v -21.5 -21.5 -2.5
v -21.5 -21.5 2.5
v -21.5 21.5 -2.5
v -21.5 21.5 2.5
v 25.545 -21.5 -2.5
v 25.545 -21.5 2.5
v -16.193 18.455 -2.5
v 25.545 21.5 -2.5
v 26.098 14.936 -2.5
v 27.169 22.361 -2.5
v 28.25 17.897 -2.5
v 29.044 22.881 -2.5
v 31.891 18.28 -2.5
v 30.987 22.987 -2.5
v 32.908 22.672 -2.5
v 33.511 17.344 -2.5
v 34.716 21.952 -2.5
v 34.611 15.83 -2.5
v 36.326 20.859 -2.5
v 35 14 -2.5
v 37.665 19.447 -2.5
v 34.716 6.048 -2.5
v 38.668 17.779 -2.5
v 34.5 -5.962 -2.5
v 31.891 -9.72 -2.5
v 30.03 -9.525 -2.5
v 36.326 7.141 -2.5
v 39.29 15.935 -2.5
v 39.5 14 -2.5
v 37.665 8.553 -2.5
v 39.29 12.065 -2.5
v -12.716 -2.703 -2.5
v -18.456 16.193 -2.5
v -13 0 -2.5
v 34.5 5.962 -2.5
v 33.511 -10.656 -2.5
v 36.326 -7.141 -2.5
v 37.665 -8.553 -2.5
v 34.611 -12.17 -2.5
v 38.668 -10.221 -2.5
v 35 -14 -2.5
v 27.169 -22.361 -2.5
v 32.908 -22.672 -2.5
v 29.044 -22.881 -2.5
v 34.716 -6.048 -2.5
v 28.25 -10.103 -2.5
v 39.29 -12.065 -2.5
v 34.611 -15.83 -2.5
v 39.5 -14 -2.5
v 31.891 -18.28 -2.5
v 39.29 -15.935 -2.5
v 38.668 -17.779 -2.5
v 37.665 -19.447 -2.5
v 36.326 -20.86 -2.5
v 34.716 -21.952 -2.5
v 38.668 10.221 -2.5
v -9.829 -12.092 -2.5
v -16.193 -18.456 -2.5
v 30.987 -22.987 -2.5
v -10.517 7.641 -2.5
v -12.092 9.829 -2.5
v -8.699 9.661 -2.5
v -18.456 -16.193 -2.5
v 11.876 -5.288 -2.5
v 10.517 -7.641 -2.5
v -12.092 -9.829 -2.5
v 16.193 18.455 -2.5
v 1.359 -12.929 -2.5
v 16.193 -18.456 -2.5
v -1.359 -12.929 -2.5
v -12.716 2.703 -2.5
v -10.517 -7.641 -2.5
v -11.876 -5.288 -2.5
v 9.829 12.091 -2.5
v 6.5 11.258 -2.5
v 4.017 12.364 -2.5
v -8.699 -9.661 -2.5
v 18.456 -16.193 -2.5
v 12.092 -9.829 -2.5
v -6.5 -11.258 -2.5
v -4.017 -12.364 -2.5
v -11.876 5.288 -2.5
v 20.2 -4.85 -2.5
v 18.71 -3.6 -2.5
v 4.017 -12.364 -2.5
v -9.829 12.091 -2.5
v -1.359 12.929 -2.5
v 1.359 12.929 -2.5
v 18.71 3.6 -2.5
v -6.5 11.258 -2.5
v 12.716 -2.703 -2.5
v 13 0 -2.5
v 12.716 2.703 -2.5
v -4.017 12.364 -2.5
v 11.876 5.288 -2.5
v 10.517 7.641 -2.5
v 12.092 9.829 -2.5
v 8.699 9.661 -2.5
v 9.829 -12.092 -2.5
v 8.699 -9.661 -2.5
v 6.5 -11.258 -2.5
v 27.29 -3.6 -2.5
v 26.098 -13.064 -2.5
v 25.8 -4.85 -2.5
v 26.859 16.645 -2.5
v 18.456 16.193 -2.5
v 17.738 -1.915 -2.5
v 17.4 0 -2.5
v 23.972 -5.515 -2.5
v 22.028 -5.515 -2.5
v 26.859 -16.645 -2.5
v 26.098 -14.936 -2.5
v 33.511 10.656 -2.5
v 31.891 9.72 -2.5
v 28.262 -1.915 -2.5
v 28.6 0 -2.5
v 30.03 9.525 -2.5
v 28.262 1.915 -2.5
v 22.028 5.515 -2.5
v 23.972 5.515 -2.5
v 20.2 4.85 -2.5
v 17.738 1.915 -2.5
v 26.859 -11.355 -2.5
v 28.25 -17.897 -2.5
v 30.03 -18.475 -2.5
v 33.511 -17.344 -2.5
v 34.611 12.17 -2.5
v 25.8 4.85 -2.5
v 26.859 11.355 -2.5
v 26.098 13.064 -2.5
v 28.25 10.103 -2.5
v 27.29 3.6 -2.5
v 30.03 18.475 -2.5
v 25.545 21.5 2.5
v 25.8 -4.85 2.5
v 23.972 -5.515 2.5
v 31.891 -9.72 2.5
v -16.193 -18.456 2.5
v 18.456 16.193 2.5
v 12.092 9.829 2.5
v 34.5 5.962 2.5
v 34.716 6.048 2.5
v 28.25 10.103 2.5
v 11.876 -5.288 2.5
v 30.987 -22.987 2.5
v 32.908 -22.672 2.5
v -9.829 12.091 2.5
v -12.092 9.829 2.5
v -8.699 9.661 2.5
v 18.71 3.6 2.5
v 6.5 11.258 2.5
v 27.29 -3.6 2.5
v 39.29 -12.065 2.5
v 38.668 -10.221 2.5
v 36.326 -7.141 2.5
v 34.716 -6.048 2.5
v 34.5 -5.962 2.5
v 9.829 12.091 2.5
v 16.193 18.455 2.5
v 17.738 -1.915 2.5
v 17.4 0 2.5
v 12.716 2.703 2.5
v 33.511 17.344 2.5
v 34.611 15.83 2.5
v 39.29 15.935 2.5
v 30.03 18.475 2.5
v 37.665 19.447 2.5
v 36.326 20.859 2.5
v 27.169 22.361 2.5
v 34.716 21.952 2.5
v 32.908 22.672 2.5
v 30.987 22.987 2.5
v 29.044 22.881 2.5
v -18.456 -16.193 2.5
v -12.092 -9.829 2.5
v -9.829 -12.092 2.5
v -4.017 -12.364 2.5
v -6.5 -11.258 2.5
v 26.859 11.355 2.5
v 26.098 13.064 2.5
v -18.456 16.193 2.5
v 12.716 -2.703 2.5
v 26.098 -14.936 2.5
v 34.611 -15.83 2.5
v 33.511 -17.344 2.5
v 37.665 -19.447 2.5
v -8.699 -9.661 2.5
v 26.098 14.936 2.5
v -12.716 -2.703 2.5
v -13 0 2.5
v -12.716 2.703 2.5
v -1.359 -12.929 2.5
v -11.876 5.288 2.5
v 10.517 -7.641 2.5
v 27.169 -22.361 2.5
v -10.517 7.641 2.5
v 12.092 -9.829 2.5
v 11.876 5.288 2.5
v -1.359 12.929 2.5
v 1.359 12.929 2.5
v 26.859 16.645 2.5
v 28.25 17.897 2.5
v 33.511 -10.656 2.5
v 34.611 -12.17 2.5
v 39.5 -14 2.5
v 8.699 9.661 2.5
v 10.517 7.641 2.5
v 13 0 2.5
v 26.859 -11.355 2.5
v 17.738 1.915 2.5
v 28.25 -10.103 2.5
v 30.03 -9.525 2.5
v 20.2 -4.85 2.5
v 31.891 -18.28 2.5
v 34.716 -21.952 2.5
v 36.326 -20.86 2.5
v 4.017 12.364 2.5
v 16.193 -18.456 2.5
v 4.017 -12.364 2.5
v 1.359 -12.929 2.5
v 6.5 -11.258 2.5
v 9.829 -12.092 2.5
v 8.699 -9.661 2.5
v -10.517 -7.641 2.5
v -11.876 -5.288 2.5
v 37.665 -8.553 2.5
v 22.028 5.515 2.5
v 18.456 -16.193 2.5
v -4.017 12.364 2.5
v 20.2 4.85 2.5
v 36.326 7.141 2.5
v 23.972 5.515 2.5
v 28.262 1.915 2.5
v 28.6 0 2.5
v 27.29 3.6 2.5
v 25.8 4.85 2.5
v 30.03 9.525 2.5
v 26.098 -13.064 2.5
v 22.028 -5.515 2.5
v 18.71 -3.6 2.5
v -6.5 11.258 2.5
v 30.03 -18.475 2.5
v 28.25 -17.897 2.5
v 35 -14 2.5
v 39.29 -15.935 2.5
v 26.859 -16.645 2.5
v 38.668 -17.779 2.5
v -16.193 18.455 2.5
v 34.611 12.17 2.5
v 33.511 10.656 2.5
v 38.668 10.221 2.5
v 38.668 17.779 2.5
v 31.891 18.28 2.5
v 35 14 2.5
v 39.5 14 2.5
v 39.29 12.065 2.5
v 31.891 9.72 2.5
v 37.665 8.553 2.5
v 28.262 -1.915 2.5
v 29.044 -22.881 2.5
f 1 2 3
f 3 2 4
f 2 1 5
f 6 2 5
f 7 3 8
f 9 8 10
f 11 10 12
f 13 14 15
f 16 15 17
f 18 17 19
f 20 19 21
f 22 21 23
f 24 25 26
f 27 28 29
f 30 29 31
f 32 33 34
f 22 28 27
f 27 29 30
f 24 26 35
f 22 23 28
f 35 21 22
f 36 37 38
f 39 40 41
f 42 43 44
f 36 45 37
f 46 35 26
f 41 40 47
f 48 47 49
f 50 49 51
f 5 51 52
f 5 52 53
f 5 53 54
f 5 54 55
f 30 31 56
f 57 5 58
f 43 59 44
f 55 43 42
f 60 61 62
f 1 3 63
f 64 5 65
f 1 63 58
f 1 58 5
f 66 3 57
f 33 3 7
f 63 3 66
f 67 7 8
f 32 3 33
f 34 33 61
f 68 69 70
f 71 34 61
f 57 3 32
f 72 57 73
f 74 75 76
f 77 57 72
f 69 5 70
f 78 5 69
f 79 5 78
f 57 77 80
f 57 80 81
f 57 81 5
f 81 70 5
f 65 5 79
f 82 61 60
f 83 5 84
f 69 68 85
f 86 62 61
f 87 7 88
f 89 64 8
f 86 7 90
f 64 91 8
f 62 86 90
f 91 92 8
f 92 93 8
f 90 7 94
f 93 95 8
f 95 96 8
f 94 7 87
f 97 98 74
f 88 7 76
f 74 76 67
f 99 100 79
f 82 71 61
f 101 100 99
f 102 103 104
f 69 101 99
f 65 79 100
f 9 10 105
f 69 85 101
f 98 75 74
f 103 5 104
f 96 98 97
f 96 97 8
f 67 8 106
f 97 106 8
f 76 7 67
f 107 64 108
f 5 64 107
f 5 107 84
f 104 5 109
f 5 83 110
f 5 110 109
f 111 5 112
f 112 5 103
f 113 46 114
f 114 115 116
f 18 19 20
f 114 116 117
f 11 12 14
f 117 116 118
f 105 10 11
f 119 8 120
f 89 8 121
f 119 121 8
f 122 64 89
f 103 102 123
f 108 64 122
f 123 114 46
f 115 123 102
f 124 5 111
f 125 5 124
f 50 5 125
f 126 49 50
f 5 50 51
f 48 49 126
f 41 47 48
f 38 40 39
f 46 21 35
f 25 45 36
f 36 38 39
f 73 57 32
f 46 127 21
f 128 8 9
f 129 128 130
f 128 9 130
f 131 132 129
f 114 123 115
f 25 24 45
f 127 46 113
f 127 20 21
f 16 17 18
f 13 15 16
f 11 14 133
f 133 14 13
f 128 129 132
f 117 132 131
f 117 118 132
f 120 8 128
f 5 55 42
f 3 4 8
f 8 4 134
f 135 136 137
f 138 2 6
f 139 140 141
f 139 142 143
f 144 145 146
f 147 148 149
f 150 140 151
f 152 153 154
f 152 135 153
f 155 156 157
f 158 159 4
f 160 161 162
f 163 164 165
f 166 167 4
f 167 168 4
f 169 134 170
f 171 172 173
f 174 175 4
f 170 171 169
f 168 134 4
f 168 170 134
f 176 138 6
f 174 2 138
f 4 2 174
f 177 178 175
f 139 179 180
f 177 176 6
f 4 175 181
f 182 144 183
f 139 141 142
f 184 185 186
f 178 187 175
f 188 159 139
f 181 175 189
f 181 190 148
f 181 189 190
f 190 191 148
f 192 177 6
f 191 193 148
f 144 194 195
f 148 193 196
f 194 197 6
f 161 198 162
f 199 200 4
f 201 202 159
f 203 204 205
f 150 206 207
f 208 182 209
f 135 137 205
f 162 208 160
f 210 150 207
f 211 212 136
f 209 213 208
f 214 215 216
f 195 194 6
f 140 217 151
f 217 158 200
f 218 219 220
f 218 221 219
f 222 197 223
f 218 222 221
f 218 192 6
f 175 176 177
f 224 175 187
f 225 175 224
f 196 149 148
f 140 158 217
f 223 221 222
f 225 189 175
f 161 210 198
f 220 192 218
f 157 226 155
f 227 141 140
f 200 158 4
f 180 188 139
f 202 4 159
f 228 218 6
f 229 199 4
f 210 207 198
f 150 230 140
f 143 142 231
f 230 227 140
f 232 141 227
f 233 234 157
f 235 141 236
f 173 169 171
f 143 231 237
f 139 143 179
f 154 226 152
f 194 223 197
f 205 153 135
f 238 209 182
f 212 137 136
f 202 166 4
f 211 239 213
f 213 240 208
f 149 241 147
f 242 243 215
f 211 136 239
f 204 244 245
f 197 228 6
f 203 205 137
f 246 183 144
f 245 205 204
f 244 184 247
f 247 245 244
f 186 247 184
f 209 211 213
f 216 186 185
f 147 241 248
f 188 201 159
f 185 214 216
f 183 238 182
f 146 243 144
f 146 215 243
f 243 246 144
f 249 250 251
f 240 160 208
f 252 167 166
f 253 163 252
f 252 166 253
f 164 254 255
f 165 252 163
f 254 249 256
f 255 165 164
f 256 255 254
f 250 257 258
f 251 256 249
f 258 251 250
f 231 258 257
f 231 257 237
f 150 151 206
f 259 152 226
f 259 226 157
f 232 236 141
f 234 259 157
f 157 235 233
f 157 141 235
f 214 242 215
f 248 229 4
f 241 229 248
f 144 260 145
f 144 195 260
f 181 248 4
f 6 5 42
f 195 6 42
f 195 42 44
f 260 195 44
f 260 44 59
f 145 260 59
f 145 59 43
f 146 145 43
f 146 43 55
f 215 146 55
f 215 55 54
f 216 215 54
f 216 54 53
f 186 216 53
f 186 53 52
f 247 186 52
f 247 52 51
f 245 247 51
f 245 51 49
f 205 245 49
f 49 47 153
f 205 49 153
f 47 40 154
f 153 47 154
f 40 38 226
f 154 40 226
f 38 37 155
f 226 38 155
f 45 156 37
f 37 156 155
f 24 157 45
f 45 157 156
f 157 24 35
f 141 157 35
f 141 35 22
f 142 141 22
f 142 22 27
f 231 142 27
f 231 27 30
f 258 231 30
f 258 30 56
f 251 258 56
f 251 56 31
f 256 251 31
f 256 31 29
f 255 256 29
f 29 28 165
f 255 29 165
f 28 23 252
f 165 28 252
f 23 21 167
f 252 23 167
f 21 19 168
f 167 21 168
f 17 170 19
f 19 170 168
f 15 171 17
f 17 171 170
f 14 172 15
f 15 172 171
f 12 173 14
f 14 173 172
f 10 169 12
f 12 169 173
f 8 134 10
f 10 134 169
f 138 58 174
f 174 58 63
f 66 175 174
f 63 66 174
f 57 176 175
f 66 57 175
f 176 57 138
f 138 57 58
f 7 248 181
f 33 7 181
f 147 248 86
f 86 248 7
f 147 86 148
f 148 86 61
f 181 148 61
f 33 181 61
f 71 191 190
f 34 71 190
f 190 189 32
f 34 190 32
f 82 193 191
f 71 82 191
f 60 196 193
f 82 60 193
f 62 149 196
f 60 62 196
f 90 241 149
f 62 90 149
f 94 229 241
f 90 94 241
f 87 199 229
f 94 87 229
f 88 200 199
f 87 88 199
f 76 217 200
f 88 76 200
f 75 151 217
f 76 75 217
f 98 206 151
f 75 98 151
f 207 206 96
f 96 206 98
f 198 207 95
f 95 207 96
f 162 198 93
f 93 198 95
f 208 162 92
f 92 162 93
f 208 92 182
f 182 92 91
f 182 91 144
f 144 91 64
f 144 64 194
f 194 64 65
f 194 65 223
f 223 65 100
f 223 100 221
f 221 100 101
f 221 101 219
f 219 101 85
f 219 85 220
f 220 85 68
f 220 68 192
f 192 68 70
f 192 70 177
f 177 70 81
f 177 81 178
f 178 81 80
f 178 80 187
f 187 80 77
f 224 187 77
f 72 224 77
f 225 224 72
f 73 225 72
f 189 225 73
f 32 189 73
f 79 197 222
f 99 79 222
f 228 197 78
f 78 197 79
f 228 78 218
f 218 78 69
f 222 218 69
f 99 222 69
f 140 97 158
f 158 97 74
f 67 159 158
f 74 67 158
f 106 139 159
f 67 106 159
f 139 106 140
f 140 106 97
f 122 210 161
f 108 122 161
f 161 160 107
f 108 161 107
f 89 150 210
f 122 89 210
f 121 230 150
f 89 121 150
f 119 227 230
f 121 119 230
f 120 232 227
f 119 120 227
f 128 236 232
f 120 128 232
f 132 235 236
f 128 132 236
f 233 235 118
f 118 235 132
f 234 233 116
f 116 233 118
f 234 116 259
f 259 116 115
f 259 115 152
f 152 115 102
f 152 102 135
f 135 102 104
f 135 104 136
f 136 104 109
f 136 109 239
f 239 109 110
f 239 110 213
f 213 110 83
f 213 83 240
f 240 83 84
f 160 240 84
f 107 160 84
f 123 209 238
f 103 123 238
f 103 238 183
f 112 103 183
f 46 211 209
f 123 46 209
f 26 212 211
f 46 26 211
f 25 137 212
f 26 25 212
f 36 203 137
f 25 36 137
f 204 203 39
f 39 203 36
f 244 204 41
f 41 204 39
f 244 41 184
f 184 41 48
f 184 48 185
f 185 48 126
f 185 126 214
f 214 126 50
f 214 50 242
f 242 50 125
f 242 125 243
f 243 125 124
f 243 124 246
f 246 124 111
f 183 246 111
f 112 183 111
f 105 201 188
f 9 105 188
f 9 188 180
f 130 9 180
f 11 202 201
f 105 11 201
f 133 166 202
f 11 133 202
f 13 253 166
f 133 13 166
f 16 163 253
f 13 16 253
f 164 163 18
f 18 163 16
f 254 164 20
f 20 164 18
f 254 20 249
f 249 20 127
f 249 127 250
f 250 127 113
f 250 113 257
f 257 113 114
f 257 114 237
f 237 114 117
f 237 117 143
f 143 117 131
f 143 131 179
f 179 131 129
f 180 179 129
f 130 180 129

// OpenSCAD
// file: configuration.scad
// This is part of miPrint package
// GNU GPL version 3

print = 200;
wall = 5;
rod = 8;
minirod = 3;
motorw = 43;
motorh = 47;
inf = 500;
rail = 10; // outside
// main file
// This is part of miPrint package
// GNU GPL version 3

include <configuration.scad>

cubew=wall+motorw+rod;

difference() {
  union() {
    translate([wall/2+rod/2,0,0]) cube([cubew,motorw,wall],center=true);
    translate([cubew/2+wall/2,motorw/2-wall*1.5,0]) cylinder(r=rod/2+wall,h=wall,center=true);
    translate([cubew/2+wall/2,-(motorw/2-wall*1.5),0]) cylinder(r=rod/2+wall,h=wall,center=true);
  }
  translate([cubew/2+wall/2,motorw/2-wall*1.5,0]) cylinder(r=rod/2+0.5,h=inf,center=true);
  translate([cubew/2+wall/2,-(motorw/2-wall*1.5),0]) cylinder(r=rod/2+0.5,h=inf,center=true);
  // this part is copied form Prusa Mendel
  rotate ([0,0,45]) translate([20,0,0]) cube(size = [9,3.2,25], center = true);
  rotate ([0,0,-45]) translate([20,0,0]) cube(size = [9,3.2,25], center = true);
  rotate ([0,0,135]) translate([20,0,0]) cube(size = [9,3.2,25], center = true);
  rotate ([0,0,-135]) translate([20,0,0]) cube(size = [9,3.2,25], center = true);
  cylinder(r=13,h=25, center = true);
  // savng material
  translate([cubew/2-wall,0,0]) cylinder(r=rod*0.7,h=inf,center=true);
}
